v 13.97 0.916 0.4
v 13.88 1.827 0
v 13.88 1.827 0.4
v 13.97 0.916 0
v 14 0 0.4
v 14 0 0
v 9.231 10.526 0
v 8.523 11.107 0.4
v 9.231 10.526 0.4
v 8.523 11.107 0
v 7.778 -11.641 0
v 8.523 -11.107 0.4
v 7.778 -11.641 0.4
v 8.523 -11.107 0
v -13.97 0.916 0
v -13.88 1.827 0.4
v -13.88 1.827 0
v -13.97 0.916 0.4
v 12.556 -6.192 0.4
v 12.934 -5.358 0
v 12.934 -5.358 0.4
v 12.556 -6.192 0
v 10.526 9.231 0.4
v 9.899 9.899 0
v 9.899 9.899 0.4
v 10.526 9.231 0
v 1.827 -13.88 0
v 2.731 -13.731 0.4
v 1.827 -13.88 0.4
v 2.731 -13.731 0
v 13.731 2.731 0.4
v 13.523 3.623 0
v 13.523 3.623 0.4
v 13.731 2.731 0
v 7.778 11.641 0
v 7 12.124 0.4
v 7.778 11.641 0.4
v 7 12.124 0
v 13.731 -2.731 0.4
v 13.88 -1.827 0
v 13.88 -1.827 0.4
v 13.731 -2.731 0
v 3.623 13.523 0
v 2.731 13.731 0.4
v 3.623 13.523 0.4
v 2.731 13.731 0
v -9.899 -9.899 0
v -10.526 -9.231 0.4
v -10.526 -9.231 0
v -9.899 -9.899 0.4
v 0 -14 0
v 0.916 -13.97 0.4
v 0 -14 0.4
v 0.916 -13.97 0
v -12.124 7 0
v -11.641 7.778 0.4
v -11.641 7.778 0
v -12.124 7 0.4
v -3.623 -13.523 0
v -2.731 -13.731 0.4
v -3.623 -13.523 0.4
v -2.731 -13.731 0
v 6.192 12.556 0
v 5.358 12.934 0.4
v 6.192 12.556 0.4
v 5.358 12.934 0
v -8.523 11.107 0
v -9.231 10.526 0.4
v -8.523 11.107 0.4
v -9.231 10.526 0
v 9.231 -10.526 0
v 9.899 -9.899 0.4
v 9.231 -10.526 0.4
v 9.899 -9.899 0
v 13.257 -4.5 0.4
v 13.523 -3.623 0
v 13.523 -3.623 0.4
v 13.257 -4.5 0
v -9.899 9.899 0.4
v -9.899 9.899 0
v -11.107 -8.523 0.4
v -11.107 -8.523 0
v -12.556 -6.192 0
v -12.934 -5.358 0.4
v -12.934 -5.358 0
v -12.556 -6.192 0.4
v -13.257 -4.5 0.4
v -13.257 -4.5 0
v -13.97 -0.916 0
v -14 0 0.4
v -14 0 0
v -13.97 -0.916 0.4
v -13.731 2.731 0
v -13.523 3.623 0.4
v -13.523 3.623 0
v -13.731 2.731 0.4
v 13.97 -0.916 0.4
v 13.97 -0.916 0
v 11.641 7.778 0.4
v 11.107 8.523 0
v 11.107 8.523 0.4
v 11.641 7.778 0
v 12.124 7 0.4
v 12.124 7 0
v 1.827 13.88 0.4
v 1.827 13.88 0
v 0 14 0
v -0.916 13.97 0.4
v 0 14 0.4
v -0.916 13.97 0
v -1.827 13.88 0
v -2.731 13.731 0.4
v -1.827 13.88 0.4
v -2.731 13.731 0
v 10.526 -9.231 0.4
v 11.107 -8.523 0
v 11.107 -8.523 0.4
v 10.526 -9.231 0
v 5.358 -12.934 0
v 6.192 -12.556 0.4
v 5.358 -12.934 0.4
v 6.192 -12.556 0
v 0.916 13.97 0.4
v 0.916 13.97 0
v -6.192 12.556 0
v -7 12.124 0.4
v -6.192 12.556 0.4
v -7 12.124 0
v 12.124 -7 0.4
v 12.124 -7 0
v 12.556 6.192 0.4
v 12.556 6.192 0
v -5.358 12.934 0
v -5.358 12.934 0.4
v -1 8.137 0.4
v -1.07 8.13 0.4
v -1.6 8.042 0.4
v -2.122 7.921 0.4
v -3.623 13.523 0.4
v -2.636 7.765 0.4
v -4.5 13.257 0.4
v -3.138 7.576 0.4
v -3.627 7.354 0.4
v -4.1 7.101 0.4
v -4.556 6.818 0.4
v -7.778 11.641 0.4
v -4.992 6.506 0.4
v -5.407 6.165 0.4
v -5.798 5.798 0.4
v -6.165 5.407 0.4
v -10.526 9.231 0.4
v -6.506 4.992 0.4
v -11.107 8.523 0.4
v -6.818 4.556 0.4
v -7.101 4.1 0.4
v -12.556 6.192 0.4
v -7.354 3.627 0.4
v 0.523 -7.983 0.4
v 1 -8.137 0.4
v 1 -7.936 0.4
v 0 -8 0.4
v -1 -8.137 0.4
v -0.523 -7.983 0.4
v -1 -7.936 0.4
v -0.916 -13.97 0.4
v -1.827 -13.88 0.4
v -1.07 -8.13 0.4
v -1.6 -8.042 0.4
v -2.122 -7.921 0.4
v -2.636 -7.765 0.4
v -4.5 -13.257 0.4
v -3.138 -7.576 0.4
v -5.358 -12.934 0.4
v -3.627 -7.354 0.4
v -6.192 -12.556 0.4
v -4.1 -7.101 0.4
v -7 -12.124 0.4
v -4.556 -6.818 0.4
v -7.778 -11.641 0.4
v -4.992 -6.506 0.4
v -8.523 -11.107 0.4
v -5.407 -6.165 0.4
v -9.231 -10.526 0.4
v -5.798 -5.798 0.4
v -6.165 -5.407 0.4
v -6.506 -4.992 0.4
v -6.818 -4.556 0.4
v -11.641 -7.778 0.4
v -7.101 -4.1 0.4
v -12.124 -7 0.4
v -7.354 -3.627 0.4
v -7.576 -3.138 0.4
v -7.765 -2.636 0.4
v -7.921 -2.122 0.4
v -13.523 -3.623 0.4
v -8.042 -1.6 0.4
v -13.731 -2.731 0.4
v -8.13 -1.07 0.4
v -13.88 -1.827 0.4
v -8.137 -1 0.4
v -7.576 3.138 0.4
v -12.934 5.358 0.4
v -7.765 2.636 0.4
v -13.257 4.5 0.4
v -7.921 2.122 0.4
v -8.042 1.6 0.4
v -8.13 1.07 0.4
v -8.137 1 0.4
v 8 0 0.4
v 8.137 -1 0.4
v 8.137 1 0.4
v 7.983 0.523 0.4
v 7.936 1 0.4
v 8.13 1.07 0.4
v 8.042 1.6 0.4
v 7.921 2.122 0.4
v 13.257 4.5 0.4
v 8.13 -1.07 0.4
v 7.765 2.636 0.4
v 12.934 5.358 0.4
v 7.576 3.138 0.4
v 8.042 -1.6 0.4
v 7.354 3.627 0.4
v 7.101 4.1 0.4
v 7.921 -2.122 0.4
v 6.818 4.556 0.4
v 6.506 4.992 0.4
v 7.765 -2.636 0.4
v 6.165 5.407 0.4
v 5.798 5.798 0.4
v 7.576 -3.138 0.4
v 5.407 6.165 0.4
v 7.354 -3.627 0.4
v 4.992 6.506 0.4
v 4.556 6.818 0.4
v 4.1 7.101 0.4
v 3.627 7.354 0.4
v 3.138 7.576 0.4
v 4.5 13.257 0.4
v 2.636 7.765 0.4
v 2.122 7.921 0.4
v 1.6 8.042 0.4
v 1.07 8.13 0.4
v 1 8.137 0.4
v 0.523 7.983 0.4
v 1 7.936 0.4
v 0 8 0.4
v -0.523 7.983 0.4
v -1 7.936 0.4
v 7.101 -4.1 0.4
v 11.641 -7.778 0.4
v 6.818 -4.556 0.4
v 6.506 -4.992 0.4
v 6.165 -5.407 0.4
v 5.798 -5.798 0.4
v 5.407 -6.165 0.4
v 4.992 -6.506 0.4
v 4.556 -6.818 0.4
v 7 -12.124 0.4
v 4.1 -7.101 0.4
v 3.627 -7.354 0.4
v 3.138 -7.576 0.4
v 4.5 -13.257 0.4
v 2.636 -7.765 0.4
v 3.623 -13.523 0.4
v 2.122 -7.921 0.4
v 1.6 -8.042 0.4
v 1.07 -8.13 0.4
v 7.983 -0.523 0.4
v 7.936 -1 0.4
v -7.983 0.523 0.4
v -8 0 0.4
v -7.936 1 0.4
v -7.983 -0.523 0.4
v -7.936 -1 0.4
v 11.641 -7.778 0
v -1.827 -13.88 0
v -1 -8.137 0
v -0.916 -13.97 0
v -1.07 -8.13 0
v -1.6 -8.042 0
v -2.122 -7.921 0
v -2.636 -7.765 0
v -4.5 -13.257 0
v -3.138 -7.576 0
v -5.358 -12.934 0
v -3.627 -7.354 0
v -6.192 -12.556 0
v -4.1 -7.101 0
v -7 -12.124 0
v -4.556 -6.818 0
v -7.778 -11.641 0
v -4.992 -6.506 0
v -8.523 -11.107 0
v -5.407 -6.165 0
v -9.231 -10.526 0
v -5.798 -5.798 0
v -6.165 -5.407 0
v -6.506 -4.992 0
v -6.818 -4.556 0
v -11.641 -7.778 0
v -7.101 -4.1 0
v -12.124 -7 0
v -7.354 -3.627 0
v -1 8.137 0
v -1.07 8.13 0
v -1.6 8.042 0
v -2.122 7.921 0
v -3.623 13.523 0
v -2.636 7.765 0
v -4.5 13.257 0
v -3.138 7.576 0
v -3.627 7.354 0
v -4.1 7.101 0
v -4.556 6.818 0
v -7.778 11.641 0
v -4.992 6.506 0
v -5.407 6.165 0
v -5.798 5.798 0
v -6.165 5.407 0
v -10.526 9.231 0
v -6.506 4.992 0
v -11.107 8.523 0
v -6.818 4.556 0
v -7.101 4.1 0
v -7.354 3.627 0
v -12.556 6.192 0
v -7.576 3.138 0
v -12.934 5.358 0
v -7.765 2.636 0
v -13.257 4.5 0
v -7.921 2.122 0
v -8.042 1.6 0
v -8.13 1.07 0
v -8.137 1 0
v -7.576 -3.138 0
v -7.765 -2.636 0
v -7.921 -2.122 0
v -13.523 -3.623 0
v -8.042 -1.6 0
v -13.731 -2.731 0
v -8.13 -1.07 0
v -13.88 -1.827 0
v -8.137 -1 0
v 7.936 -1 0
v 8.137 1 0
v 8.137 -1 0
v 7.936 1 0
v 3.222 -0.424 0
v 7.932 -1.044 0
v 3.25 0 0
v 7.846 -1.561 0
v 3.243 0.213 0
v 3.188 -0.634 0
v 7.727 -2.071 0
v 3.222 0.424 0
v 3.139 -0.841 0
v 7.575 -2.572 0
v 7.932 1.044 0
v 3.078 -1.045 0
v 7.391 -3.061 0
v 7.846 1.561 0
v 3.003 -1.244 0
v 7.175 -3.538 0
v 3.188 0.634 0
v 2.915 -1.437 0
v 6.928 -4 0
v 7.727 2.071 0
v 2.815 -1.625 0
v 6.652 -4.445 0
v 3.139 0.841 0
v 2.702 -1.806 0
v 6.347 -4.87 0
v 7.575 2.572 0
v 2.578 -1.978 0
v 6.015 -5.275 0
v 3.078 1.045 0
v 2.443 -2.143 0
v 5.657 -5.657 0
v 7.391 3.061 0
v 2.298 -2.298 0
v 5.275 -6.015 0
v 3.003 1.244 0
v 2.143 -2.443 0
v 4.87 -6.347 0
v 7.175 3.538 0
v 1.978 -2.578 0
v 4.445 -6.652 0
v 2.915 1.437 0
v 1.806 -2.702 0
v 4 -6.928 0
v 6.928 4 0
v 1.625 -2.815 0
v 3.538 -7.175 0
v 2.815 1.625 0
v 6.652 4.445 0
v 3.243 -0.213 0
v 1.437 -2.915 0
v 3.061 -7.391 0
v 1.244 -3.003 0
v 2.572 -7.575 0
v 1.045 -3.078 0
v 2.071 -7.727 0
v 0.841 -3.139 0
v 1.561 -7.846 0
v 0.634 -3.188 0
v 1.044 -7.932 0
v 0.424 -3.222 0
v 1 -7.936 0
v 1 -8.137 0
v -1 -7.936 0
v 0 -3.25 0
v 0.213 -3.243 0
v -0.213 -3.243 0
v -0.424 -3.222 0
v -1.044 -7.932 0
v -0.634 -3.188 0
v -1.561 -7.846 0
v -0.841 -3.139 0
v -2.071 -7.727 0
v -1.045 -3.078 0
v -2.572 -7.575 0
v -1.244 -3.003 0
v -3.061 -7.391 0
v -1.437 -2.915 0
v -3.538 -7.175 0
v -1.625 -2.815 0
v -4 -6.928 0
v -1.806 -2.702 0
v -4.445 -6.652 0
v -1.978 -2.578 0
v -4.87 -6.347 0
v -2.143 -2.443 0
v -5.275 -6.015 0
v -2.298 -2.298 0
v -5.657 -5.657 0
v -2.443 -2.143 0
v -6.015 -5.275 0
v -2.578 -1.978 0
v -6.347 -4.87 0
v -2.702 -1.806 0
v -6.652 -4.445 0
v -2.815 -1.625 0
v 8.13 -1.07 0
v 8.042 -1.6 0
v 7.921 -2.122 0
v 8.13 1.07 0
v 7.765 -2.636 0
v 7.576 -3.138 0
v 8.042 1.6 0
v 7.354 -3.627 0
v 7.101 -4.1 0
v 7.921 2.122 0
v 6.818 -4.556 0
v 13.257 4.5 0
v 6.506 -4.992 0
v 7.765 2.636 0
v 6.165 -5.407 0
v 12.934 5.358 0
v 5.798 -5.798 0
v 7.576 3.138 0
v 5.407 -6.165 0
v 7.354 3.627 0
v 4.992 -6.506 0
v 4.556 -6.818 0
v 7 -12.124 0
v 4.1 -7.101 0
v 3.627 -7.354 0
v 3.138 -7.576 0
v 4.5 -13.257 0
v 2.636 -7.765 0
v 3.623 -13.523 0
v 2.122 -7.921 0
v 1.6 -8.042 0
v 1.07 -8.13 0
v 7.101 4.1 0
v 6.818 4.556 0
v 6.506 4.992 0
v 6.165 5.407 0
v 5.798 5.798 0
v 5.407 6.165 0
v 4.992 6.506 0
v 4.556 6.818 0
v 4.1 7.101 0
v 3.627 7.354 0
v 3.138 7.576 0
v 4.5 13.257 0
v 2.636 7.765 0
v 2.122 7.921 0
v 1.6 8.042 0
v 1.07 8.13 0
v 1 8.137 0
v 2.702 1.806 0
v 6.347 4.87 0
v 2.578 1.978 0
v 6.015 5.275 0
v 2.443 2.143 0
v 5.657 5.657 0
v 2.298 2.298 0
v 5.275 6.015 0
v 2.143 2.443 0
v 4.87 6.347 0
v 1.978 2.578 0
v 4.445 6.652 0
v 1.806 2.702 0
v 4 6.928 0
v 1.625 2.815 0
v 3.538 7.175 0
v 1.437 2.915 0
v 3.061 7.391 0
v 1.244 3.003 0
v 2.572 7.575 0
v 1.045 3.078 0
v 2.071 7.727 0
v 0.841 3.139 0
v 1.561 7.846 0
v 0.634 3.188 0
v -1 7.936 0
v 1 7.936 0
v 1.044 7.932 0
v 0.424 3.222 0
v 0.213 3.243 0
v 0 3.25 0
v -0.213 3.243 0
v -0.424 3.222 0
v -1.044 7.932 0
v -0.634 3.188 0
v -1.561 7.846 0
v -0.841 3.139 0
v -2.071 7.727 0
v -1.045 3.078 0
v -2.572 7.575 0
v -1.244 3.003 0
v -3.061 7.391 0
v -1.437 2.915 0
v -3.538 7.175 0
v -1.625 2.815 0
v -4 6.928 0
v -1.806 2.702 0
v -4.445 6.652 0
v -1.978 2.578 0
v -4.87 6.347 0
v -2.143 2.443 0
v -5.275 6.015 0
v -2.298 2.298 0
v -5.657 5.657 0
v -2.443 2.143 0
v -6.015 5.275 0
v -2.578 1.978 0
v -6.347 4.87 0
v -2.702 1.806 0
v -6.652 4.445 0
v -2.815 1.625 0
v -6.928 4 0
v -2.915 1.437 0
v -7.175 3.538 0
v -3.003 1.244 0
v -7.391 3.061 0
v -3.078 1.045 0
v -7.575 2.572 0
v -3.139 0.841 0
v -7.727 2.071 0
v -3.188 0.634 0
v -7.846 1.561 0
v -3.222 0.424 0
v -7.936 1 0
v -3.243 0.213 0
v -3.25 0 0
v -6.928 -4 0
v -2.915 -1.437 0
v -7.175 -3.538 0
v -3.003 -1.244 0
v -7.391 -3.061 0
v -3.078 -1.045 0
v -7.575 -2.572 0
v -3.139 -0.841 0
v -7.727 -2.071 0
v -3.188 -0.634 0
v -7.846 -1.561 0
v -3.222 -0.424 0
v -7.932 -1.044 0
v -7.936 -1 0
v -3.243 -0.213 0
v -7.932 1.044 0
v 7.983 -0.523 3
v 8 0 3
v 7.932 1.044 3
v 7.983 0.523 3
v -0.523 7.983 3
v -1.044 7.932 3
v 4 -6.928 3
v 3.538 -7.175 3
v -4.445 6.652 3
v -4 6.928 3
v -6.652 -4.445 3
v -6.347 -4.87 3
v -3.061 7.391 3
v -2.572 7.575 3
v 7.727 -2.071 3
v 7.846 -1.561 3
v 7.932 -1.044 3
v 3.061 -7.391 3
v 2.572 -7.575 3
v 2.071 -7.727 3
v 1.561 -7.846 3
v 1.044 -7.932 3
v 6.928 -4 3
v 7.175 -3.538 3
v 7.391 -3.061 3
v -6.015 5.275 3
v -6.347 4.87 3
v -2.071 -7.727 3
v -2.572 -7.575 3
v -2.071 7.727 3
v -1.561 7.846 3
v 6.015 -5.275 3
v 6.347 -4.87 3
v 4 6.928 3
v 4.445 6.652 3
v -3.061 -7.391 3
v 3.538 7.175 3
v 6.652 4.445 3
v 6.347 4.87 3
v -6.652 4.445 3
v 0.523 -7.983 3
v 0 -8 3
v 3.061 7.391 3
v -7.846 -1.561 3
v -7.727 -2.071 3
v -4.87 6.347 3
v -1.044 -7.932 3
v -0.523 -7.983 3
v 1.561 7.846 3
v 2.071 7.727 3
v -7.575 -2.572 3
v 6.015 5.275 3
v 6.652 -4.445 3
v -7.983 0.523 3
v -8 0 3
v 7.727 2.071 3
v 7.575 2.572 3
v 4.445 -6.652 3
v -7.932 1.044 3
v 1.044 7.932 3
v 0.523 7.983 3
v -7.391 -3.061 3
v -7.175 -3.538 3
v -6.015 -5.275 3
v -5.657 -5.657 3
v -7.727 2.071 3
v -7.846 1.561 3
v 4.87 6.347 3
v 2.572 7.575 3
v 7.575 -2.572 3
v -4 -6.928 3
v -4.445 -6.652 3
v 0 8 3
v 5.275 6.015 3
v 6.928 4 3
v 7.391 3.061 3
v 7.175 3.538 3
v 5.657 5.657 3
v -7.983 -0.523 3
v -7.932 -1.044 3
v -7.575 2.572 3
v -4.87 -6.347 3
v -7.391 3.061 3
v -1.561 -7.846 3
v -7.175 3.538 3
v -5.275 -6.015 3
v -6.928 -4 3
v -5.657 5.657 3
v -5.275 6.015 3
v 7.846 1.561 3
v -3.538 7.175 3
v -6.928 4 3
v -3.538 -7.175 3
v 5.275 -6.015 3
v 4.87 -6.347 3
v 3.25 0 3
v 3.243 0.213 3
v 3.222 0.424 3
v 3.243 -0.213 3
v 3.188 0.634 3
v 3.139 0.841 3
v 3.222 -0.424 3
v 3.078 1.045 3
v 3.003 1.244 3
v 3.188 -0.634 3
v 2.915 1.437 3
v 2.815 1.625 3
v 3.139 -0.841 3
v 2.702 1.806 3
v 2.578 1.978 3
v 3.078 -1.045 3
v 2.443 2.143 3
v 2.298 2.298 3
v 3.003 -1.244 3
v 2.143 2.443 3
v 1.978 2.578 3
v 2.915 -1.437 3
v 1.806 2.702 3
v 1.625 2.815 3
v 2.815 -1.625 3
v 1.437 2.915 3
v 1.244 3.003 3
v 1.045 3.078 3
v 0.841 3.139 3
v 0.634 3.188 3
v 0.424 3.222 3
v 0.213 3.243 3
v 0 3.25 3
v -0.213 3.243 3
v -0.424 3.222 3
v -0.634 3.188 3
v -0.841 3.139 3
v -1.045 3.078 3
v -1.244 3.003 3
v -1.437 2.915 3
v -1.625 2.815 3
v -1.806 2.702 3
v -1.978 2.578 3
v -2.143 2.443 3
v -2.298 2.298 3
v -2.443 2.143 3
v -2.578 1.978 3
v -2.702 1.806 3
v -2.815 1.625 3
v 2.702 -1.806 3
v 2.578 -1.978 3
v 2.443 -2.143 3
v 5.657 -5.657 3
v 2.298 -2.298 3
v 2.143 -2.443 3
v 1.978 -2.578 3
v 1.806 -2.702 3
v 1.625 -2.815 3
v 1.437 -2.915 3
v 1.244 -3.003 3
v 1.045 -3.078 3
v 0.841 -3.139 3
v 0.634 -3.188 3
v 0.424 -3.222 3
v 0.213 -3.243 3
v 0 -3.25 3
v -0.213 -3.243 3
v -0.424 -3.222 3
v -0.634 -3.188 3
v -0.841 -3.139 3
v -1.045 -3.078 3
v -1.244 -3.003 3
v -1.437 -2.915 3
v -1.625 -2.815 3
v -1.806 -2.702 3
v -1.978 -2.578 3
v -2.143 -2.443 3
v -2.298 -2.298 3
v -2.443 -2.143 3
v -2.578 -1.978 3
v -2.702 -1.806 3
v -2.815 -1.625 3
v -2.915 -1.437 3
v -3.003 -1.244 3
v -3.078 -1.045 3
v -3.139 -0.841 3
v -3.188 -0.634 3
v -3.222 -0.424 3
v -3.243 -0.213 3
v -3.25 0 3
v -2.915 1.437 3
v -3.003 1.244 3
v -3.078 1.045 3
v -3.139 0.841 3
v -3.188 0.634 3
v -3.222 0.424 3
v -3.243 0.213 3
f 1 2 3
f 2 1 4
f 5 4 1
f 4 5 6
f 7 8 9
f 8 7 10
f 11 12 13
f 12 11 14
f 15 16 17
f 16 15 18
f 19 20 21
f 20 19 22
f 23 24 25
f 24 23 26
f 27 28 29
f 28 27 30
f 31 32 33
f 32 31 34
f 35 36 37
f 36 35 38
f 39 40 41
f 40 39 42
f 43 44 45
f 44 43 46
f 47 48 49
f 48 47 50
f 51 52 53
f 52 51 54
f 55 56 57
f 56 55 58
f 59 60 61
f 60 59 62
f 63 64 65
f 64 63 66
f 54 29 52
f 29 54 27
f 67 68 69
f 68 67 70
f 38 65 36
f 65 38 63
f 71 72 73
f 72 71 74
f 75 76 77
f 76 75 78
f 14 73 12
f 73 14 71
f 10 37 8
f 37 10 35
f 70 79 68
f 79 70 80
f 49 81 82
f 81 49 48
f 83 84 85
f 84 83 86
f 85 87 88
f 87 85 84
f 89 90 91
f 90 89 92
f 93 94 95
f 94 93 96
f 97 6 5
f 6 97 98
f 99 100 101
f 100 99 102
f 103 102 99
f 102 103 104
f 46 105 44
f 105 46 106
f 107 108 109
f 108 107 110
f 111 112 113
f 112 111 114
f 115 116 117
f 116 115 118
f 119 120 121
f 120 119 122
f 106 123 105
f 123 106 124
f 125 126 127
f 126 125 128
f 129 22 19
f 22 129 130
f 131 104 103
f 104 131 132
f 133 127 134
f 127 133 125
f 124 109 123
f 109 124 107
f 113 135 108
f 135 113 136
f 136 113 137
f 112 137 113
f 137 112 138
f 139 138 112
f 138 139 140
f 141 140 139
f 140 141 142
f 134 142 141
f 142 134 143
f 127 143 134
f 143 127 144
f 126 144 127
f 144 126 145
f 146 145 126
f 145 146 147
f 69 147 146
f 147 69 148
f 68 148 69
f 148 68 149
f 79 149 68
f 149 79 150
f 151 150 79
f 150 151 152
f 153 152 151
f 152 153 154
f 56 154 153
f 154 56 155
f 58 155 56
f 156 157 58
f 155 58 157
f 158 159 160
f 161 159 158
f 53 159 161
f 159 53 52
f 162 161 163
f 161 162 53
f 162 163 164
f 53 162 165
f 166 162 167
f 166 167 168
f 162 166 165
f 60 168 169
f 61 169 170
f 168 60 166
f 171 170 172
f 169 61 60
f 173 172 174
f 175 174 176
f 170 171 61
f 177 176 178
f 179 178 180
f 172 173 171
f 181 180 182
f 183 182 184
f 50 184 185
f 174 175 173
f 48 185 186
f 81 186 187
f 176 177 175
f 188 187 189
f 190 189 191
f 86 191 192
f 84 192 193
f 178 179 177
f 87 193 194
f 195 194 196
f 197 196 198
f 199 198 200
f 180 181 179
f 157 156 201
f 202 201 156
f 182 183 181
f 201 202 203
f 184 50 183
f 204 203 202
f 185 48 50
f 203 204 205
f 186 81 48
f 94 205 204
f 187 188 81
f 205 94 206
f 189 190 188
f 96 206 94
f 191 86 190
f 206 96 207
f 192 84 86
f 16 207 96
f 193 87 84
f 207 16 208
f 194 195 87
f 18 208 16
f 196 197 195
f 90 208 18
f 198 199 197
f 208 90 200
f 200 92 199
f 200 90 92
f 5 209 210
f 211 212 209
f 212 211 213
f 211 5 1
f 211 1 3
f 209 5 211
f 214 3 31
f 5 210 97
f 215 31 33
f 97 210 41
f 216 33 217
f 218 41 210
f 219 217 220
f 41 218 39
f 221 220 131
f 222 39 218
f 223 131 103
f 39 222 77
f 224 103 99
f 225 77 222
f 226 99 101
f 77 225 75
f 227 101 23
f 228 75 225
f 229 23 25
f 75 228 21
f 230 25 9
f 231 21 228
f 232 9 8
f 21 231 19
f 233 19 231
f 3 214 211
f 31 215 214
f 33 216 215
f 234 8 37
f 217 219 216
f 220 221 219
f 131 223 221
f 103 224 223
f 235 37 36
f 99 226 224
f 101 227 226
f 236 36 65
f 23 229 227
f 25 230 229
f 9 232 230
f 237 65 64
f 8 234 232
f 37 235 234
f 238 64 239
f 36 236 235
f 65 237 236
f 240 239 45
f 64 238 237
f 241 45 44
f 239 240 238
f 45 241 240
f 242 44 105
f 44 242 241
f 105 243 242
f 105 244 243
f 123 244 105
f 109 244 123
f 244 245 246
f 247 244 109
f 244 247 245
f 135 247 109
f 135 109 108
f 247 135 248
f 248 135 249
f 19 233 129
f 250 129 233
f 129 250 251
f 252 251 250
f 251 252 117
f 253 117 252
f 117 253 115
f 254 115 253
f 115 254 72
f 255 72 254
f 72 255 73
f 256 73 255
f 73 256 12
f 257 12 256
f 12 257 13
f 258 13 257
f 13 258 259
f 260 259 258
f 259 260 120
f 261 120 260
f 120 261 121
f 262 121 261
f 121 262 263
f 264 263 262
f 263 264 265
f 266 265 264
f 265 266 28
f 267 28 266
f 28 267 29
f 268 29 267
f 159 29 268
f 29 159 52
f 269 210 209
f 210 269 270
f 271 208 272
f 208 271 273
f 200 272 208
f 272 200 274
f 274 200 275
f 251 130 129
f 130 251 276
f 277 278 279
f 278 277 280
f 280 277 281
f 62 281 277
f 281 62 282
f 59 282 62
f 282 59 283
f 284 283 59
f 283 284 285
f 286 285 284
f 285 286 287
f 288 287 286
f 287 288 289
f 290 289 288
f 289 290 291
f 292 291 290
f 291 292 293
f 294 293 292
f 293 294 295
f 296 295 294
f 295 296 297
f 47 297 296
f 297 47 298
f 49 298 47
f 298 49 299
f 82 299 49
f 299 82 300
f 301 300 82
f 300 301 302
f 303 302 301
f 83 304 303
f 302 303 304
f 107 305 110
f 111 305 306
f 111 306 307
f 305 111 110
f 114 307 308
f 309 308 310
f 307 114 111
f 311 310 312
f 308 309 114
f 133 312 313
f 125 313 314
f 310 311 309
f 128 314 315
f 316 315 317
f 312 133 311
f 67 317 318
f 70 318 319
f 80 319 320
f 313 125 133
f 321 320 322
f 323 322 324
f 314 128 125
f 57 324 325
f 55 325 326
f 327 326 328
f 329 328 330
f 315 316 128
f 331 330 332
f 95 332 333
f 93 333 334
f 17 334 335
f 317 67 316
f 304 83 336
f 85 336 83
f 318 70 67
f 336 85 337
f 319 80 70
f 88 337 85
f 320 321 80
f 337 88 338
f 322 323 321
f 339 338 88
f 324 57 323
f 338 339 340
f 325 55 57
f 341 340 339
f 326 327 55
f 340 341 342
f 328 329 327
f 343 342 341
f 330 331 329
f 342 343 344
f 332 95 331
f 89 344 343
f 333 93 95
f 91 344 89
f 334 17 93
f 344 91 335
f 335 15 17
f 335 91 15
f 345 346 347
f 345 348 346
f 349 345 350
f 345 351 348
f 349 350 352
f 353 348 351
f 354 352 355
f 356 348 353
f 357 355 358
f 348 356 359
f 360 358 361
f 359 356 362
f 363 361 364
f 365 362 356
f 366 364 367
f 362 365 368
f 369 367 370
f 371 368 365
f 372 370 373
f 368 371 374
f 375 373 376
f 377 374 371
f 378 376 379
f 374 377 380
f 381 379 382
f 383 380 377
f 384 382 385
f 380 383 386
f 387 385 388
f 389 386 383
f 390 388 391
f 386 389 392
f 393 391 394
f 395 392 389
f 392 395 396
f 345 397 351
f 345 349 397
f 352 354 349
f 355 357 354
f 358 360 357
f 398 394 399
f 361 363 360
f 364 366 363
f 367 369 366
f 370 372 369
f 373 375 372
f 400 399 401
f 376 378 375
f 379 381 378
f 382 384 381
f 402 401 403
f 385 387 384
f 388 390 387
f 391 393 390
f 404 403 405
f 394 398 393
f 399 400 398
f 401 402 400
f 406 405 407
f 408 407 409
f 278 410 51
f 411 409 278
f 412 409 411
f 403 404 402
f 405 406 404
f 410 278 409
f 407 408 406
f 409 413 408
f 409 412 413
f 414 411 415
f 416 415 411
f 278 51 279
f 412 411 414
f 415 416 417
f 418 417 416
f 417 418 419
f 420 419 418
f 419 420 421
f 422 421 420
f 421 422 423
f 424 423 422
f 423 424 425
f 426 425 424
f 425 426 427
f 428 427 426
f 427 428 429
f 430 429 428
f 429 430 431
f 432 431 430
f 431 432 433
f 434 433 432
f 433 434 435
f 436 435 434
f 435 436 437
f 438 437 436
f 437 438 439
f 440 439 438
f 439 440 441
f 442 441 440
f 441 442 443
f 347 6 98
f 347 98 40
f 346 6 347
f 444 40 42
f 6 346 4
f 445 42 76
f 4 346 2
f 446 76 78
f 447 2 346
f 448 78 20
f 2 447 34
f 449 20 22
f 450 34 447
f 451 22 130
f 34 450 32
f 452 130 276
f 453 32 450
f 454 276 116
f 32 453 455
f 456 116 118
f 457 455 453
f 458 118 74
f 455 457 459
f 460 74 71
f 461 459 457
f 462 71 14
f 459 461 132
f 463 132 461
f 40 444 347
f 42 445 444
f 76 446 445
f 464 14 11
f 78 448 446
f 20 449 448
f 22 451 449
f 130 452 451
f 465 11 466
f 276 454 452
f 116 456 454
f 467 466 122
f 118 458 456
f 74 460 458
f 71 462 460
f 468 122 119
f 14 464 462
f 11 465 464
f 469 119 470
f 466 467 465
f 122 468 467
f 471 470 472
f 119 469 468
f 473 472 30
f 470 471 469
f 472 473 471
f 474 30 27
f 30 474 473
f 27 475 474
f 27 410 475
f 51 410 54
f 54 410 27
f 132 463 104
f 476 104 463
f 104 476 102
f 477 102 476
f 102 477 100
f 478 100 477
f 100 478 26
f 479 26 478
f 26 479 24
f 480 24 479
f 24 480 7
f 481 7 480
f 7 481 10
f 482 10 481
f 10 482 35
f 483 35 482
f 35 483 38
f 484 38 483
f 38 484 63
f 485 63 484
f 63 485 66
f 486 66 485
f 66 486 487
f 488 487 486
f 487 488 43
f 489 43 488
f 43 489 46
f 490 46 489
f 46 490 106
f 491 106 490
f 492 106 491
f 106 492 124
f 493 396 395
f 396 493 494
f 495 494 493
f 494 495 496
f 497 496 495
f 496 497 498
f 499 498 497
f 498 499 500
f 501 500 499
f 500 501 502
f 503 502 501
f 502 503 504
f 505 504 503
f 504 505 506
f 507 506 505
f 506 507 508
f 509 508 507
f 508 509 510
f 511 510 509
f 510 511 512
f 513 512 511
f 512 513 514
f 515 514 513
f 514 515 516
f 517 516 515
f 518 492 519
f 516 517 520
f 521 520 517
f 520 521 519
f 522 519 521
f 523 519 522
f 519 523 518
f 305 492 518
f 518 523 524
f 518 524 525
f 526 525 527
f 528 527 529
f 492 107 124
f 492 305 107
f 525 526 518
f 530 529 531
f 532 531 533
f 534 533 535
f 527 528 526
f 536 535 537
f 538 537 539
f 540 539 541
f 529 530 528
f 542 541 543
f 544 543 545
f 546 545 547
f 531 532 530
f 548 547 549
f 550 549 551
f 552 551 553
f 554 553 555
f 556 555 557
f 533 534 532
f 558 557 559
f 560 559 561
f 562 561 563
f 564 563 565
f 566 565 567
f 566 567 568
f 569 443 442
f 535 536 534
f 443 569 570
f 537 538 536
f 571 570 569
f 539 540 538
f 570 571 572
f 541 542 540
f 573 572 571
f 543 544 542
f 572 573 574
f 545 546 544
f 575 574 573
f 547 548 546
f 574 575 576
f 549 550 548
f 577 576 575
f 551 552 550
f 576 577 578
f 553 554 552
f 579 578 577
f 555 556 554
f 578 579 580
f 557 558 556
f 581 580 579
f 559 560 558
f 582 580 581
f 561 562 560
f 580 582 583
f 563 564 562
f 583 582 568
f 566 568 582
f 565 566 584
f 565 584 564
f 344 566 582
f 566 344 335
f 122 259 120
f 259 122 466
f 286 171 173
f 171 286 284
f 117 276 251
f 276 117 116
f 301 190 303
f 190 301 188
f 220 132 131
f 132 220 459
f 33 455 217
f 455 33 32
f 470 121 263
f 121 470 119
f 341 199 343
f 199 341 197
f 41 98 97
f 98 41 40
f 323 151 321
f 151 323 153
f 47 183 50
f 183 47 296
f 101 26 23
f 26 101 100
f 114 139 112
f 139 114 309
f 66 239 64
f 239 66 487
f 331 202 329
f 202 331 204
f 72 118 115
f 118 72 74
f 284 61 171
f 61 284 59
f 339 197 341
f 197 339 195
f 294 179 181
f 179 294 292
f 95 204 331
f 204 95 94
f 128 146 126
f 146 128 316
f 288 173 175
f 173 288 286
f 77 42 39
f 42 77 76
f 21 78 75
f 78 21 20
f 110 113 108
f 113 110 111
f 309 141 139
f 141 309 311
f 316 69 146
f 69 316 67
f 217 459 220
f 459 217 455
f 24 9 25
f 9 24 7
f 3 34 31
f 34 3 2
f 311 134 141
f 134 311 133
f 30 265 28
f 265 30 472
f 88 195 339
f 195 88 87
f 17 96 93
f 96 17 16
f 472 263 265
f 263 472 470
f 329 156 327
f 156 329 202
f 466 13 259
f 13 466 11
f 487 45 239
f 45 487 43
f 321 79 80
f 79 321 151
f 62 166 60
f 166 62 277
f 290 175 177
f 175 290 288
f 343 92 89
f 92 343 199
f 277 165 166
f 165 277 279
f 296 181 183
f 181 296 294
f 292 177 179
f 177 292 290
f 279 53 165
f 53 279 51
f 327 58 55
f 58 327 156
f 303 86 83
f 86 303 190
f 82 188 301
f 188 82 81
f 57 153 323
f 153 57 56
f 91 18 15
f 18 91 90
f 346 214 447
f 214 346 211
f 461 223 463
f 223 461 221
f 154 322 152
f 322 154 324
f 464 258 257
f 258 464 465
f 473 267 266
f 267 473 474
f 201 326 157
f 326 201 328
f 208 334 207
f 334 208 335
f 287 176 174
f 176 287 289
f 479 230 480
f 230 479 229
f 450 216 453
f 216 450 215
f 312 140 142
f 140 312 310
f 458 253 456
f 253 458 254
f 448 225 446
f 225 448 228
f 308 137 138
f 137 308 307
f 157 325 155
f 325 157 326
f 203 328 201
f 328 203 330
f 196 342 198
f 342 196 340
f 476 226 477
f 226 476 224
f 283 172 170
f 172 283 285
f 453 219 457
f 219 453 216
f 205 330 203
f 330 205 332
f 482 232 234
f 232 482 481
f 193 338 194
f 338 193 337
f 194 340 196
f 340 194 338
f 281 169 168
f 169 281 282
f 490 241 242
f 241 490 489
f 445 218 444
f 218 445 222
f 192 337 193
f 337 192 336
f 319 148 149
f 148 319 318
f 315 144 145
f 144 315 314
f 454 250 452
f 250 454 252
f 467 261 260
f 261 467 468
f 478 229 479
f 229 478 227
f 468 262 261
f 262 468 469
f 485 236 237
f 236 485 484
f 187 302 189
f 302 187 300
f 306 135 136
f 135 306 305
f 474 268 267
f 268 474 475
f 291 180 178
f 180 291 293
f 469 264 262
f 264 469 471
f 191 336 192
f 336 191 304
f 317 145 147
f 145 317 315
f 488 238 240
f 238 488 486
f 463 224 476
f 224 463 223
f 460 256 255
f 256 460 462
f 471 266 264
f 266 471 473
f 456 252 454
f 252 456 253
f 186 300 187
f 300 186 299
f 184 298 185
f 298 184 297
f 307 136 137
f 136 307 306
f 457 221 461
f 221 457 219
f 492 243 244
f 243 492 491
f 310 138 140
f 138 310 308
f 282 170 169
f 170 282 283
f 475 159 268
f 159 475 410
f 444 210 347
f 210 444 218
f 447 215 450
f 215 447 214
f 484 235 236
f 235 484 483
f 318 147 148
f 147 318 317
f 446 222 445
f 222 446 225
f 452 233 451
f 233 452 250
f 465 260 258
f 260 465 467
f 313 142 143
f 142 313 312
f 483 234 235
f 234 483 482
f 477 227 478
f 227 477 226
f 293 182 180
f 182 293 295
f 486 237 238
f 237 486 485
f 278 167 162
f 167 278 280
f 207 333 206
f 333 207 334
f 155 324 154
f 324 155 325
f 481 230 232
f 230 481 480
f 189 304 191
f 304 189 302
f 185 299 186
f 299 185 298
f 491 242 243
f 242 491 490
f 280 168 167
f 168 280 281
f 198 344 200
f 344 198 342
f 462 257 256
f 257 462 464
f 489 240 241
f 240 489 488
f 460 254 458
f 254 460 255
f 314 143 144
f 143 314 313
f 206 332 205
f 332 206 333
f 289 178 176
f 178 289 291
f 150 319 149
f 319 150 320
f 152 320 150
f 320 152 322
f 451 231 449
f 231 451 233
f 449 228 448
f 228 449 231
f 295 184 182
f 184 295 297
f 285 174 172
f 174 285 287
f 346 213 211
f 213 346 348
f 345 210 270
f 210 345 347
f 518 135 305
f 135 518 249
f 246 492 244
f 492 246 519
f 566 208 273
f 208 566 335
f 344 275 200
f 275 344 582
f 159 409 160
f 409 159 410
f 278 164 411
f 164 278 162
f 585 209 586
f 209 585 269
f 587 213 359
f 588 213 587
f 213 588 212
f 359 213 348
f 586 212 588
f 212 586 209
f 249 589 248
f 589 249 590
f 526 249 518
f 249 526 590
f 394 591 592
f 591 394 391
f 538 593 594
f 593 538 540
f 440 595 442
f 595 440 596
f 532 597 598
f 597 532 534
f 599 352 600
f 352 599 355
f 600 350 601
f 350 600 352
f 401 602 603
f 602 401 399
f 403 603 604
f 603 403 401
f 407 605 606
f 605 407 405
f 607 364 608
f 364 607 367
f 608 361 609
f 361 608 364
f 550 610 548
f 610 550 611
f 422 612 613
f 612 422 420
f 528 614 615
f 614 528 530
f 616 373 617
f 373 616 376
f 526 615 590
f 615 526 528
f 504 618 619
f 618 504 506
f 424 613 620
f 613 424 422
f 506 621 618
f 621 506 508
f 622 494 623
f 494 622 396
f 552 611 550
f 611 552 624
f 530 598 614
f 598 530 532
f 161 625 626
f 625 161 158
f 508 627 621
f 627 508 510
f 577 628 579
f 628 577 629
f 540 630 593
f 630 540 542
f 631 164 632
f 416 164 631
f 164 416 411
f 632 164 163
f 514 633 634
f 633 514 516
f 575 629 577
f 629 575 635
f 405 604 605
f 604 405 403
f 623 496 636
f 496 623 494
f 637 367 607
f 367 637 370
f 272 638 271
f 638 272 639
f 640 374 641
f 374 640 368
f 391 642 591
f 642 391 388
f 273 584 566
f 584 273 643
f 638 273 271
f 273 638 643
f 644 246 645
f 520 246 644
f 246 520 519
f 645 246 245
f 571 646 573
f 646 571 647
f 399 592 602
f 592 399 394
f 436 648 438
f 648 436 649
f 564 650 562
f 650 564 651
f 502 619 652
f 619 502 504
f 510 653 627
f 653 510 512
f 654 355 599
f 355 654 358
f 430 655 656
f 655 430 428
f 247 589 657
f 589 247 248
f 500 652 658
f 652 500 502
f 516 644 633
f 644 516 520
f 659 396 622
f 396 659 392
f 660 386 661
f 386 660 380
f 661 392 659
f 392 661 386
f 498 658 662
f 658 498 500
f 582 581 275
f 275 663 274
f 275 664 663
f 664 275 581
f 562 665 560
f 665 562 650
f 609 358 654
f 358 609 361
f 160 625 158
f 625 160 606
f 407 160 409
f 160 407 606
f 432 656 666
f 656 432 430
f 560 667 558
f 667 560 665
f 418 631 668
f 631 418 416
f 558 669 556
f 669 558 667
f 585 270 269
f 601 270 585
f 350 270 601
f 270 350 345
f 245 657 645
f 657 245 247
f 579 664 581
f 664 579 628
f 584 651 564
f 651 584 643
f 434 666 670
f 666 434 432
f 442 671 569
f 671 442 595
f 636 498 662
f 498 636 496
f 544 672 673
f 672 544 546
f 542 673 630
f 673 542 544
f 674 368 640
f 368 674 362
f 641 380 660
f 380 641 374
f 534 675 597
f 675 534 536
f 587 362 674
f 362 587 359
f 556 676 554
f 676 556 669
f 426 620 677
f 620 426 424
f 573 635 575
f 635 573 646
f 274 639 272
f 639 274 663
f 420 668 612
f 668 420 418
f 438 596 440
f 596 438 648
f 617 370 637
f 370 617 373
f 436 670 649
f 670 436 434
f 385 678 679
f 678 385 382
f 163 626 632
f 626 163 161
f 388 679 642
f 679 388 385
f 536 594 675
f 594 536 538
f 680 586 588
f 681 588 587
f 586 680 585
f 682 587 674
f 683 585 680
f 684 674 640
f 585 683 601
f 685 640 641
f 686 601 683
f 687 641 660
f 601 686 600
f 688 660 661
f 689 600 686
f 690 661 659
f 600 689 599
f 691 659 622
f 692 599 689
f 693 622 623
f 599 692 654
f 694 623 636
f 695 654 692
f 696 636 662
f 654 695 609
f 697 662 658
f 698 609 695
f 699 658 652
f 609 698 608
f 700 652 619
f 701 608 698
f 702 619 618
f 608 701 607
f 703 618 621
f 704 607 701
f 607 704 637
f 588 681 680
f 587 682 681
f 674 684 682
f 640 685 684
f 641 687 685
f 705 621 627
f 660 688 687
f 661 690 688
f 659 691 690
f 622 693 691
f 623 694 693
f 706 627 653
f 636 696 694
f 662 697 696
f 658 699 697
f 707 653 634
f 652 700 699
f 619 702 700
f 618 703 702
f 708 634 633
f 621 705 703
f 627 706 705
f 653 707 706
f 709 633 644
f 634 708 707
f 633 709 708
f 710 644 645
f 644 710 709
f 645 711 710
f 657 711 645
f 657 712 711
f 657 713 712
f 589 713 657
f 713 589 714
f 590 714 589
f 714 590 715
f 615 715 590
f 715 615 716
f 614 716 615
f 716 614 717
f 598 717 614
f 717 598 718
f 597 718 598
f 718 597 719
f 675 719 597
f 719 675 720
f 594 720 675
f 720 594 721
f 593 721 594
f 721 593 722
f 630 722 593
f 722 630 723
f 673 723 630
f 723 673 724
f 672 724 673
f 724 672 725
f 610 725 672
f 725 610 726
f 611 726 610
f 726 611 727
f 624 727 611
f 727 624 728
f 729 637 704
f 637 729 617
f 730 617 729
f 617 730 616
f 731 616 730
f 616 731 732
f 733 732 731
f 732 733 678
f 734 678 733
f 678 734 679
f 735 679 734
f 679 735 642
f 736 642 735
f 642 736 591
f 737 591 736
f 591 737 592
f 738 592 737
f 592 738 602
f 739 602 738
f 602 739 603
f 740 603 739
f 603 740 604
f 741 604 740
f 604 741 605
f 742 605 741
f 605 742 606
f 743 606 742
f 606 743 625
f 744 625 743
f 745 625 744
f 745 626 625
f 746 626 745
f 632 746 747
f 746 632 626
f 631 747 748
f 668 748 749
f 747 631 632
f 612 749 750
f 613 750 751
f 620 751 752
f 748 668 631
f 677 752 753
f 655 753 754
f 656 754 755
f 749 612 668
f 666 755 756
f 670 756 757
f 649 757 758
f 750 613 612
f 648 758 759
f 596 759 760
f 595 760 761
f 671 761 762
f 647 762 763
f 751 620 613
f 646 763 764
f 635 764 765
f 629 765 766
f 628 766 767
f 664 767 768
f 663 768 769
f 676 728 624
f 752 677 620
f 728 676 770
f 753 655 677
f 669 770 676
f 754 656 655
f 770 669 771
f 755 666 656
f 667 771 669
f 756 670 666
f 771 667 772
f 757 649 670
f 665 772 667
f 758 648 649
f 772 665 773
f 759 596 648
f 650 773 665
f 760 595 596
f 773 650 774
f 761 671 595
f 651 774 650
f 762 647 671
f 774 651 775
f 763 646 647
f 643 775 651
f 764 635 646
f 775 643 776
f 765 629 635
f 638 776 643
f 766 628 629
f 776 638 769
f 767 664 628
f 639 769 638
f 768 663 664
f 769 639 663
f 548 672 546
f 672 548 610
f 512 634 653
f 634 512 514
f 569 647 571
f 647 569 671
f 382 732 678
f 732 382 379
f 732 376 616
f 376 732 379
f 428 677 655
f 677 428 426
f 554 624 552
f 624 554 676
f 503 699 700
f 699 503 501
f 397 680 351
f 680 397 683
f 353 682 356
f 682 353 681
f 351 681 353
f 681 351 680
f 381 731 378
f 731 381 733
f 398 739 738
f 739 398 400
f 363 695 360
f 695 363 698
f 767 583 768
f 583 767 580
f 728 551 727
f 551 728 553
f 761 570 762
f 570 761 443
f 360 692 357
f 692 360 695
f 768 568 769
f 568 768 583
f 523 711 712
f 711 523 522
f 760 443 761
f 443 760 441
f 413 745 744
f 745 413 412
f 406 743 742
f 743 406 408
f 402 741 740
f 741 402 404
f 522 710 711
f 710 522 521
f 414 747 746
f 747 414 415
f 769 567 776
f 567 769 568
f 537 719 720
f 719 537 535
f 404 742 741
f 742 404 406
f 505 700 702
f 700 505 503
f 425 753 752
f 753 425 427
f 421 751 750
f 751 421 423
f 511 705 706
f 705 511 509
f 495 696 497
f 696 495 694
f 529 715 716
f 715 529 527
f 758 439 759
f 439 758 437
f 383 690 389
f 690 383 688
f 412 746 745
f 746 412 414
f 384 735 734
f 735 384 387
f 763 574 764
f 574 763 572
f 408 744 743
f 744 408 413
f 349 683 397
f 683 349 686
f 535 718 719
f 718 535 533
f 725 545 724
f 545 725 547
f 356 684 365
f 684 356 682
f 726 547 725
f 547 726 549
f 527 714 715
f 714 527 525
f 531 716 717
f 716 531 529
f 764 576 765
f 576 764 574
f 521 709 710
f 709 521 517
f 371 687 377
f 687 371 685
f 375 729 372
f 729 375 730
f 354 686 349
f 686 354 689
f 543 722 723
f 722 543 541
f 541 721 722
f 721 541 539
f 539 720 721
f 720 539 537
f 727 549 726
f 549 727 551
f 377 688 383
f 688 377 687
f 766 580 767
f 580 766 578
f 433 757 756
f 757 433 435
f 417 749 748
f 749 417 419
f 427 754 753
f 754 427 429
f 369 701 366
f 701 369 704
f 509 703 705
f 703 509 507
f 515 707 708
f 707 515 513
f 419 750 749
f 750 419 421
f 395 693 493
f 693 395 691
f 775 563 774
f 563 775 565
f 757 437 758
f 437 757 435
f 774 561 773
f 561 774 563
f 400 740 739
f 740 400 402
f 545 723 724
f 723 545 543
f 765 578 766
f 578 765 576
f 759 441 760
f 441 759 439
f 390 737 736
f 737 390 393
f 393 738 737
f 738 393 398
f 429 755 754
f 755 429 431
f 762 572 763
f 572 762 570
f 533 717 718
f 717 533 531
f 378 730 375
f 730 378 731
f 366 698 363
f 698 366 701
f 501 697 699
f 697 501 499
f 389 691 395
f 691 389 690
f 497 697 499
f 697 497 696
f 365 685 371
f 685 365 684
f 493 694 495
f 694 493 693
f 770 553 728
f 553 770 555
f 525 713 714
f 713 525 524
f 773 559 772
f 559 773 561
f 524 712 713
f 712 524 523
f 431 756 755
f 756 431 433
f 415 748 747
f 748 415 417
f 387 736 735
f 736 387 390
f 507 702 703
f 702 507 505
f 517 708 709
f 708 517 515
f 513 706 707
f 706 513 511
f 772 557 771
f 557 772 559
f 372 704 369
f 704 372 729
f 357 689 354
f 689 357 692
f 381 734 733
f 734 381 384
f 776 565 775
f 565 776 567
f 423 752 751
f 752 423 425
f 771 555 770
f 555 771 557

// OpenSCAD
// One shim for a leg bolt (M6, 6.5 mm hole), 3 mm thick, 16 mm across,
// with a thin built-in brim so it grips the bed. Snap or trim the brim off.

hole        = 6.5;
od          = 16;
t           = 3.0;
brim        = 6;    // brim width around the shim
brim_height = 0.4;  // two layers
brim_gap    = 0.2;  // tiny gap so the brim snaps off cleanly
$fn = 96;

difference() {
  union() {
    cylinder(h = t, d = od);
    // Brim ring, joined to the shim only by its first layers.
    difference() {
      cylinder(h = brim_height, d = od + 2 * brim);
      translate([0, 0, -1]) cylinder(h = brim_height + 2, d = od + 2 * brim_gap);
    }
    // Four small tabs bridging shim and brim so the brim holds it down.
    for (a = [0, 90, 180, 270]) rotate([0, 0, a])
      translate([od / 2 - 1, -1, 0]) cube([brim_gap + 2, 2, brim_height]);
  }
  translate([0, 0, -1]) cylinder(h = t + 2, d = hole);
}
